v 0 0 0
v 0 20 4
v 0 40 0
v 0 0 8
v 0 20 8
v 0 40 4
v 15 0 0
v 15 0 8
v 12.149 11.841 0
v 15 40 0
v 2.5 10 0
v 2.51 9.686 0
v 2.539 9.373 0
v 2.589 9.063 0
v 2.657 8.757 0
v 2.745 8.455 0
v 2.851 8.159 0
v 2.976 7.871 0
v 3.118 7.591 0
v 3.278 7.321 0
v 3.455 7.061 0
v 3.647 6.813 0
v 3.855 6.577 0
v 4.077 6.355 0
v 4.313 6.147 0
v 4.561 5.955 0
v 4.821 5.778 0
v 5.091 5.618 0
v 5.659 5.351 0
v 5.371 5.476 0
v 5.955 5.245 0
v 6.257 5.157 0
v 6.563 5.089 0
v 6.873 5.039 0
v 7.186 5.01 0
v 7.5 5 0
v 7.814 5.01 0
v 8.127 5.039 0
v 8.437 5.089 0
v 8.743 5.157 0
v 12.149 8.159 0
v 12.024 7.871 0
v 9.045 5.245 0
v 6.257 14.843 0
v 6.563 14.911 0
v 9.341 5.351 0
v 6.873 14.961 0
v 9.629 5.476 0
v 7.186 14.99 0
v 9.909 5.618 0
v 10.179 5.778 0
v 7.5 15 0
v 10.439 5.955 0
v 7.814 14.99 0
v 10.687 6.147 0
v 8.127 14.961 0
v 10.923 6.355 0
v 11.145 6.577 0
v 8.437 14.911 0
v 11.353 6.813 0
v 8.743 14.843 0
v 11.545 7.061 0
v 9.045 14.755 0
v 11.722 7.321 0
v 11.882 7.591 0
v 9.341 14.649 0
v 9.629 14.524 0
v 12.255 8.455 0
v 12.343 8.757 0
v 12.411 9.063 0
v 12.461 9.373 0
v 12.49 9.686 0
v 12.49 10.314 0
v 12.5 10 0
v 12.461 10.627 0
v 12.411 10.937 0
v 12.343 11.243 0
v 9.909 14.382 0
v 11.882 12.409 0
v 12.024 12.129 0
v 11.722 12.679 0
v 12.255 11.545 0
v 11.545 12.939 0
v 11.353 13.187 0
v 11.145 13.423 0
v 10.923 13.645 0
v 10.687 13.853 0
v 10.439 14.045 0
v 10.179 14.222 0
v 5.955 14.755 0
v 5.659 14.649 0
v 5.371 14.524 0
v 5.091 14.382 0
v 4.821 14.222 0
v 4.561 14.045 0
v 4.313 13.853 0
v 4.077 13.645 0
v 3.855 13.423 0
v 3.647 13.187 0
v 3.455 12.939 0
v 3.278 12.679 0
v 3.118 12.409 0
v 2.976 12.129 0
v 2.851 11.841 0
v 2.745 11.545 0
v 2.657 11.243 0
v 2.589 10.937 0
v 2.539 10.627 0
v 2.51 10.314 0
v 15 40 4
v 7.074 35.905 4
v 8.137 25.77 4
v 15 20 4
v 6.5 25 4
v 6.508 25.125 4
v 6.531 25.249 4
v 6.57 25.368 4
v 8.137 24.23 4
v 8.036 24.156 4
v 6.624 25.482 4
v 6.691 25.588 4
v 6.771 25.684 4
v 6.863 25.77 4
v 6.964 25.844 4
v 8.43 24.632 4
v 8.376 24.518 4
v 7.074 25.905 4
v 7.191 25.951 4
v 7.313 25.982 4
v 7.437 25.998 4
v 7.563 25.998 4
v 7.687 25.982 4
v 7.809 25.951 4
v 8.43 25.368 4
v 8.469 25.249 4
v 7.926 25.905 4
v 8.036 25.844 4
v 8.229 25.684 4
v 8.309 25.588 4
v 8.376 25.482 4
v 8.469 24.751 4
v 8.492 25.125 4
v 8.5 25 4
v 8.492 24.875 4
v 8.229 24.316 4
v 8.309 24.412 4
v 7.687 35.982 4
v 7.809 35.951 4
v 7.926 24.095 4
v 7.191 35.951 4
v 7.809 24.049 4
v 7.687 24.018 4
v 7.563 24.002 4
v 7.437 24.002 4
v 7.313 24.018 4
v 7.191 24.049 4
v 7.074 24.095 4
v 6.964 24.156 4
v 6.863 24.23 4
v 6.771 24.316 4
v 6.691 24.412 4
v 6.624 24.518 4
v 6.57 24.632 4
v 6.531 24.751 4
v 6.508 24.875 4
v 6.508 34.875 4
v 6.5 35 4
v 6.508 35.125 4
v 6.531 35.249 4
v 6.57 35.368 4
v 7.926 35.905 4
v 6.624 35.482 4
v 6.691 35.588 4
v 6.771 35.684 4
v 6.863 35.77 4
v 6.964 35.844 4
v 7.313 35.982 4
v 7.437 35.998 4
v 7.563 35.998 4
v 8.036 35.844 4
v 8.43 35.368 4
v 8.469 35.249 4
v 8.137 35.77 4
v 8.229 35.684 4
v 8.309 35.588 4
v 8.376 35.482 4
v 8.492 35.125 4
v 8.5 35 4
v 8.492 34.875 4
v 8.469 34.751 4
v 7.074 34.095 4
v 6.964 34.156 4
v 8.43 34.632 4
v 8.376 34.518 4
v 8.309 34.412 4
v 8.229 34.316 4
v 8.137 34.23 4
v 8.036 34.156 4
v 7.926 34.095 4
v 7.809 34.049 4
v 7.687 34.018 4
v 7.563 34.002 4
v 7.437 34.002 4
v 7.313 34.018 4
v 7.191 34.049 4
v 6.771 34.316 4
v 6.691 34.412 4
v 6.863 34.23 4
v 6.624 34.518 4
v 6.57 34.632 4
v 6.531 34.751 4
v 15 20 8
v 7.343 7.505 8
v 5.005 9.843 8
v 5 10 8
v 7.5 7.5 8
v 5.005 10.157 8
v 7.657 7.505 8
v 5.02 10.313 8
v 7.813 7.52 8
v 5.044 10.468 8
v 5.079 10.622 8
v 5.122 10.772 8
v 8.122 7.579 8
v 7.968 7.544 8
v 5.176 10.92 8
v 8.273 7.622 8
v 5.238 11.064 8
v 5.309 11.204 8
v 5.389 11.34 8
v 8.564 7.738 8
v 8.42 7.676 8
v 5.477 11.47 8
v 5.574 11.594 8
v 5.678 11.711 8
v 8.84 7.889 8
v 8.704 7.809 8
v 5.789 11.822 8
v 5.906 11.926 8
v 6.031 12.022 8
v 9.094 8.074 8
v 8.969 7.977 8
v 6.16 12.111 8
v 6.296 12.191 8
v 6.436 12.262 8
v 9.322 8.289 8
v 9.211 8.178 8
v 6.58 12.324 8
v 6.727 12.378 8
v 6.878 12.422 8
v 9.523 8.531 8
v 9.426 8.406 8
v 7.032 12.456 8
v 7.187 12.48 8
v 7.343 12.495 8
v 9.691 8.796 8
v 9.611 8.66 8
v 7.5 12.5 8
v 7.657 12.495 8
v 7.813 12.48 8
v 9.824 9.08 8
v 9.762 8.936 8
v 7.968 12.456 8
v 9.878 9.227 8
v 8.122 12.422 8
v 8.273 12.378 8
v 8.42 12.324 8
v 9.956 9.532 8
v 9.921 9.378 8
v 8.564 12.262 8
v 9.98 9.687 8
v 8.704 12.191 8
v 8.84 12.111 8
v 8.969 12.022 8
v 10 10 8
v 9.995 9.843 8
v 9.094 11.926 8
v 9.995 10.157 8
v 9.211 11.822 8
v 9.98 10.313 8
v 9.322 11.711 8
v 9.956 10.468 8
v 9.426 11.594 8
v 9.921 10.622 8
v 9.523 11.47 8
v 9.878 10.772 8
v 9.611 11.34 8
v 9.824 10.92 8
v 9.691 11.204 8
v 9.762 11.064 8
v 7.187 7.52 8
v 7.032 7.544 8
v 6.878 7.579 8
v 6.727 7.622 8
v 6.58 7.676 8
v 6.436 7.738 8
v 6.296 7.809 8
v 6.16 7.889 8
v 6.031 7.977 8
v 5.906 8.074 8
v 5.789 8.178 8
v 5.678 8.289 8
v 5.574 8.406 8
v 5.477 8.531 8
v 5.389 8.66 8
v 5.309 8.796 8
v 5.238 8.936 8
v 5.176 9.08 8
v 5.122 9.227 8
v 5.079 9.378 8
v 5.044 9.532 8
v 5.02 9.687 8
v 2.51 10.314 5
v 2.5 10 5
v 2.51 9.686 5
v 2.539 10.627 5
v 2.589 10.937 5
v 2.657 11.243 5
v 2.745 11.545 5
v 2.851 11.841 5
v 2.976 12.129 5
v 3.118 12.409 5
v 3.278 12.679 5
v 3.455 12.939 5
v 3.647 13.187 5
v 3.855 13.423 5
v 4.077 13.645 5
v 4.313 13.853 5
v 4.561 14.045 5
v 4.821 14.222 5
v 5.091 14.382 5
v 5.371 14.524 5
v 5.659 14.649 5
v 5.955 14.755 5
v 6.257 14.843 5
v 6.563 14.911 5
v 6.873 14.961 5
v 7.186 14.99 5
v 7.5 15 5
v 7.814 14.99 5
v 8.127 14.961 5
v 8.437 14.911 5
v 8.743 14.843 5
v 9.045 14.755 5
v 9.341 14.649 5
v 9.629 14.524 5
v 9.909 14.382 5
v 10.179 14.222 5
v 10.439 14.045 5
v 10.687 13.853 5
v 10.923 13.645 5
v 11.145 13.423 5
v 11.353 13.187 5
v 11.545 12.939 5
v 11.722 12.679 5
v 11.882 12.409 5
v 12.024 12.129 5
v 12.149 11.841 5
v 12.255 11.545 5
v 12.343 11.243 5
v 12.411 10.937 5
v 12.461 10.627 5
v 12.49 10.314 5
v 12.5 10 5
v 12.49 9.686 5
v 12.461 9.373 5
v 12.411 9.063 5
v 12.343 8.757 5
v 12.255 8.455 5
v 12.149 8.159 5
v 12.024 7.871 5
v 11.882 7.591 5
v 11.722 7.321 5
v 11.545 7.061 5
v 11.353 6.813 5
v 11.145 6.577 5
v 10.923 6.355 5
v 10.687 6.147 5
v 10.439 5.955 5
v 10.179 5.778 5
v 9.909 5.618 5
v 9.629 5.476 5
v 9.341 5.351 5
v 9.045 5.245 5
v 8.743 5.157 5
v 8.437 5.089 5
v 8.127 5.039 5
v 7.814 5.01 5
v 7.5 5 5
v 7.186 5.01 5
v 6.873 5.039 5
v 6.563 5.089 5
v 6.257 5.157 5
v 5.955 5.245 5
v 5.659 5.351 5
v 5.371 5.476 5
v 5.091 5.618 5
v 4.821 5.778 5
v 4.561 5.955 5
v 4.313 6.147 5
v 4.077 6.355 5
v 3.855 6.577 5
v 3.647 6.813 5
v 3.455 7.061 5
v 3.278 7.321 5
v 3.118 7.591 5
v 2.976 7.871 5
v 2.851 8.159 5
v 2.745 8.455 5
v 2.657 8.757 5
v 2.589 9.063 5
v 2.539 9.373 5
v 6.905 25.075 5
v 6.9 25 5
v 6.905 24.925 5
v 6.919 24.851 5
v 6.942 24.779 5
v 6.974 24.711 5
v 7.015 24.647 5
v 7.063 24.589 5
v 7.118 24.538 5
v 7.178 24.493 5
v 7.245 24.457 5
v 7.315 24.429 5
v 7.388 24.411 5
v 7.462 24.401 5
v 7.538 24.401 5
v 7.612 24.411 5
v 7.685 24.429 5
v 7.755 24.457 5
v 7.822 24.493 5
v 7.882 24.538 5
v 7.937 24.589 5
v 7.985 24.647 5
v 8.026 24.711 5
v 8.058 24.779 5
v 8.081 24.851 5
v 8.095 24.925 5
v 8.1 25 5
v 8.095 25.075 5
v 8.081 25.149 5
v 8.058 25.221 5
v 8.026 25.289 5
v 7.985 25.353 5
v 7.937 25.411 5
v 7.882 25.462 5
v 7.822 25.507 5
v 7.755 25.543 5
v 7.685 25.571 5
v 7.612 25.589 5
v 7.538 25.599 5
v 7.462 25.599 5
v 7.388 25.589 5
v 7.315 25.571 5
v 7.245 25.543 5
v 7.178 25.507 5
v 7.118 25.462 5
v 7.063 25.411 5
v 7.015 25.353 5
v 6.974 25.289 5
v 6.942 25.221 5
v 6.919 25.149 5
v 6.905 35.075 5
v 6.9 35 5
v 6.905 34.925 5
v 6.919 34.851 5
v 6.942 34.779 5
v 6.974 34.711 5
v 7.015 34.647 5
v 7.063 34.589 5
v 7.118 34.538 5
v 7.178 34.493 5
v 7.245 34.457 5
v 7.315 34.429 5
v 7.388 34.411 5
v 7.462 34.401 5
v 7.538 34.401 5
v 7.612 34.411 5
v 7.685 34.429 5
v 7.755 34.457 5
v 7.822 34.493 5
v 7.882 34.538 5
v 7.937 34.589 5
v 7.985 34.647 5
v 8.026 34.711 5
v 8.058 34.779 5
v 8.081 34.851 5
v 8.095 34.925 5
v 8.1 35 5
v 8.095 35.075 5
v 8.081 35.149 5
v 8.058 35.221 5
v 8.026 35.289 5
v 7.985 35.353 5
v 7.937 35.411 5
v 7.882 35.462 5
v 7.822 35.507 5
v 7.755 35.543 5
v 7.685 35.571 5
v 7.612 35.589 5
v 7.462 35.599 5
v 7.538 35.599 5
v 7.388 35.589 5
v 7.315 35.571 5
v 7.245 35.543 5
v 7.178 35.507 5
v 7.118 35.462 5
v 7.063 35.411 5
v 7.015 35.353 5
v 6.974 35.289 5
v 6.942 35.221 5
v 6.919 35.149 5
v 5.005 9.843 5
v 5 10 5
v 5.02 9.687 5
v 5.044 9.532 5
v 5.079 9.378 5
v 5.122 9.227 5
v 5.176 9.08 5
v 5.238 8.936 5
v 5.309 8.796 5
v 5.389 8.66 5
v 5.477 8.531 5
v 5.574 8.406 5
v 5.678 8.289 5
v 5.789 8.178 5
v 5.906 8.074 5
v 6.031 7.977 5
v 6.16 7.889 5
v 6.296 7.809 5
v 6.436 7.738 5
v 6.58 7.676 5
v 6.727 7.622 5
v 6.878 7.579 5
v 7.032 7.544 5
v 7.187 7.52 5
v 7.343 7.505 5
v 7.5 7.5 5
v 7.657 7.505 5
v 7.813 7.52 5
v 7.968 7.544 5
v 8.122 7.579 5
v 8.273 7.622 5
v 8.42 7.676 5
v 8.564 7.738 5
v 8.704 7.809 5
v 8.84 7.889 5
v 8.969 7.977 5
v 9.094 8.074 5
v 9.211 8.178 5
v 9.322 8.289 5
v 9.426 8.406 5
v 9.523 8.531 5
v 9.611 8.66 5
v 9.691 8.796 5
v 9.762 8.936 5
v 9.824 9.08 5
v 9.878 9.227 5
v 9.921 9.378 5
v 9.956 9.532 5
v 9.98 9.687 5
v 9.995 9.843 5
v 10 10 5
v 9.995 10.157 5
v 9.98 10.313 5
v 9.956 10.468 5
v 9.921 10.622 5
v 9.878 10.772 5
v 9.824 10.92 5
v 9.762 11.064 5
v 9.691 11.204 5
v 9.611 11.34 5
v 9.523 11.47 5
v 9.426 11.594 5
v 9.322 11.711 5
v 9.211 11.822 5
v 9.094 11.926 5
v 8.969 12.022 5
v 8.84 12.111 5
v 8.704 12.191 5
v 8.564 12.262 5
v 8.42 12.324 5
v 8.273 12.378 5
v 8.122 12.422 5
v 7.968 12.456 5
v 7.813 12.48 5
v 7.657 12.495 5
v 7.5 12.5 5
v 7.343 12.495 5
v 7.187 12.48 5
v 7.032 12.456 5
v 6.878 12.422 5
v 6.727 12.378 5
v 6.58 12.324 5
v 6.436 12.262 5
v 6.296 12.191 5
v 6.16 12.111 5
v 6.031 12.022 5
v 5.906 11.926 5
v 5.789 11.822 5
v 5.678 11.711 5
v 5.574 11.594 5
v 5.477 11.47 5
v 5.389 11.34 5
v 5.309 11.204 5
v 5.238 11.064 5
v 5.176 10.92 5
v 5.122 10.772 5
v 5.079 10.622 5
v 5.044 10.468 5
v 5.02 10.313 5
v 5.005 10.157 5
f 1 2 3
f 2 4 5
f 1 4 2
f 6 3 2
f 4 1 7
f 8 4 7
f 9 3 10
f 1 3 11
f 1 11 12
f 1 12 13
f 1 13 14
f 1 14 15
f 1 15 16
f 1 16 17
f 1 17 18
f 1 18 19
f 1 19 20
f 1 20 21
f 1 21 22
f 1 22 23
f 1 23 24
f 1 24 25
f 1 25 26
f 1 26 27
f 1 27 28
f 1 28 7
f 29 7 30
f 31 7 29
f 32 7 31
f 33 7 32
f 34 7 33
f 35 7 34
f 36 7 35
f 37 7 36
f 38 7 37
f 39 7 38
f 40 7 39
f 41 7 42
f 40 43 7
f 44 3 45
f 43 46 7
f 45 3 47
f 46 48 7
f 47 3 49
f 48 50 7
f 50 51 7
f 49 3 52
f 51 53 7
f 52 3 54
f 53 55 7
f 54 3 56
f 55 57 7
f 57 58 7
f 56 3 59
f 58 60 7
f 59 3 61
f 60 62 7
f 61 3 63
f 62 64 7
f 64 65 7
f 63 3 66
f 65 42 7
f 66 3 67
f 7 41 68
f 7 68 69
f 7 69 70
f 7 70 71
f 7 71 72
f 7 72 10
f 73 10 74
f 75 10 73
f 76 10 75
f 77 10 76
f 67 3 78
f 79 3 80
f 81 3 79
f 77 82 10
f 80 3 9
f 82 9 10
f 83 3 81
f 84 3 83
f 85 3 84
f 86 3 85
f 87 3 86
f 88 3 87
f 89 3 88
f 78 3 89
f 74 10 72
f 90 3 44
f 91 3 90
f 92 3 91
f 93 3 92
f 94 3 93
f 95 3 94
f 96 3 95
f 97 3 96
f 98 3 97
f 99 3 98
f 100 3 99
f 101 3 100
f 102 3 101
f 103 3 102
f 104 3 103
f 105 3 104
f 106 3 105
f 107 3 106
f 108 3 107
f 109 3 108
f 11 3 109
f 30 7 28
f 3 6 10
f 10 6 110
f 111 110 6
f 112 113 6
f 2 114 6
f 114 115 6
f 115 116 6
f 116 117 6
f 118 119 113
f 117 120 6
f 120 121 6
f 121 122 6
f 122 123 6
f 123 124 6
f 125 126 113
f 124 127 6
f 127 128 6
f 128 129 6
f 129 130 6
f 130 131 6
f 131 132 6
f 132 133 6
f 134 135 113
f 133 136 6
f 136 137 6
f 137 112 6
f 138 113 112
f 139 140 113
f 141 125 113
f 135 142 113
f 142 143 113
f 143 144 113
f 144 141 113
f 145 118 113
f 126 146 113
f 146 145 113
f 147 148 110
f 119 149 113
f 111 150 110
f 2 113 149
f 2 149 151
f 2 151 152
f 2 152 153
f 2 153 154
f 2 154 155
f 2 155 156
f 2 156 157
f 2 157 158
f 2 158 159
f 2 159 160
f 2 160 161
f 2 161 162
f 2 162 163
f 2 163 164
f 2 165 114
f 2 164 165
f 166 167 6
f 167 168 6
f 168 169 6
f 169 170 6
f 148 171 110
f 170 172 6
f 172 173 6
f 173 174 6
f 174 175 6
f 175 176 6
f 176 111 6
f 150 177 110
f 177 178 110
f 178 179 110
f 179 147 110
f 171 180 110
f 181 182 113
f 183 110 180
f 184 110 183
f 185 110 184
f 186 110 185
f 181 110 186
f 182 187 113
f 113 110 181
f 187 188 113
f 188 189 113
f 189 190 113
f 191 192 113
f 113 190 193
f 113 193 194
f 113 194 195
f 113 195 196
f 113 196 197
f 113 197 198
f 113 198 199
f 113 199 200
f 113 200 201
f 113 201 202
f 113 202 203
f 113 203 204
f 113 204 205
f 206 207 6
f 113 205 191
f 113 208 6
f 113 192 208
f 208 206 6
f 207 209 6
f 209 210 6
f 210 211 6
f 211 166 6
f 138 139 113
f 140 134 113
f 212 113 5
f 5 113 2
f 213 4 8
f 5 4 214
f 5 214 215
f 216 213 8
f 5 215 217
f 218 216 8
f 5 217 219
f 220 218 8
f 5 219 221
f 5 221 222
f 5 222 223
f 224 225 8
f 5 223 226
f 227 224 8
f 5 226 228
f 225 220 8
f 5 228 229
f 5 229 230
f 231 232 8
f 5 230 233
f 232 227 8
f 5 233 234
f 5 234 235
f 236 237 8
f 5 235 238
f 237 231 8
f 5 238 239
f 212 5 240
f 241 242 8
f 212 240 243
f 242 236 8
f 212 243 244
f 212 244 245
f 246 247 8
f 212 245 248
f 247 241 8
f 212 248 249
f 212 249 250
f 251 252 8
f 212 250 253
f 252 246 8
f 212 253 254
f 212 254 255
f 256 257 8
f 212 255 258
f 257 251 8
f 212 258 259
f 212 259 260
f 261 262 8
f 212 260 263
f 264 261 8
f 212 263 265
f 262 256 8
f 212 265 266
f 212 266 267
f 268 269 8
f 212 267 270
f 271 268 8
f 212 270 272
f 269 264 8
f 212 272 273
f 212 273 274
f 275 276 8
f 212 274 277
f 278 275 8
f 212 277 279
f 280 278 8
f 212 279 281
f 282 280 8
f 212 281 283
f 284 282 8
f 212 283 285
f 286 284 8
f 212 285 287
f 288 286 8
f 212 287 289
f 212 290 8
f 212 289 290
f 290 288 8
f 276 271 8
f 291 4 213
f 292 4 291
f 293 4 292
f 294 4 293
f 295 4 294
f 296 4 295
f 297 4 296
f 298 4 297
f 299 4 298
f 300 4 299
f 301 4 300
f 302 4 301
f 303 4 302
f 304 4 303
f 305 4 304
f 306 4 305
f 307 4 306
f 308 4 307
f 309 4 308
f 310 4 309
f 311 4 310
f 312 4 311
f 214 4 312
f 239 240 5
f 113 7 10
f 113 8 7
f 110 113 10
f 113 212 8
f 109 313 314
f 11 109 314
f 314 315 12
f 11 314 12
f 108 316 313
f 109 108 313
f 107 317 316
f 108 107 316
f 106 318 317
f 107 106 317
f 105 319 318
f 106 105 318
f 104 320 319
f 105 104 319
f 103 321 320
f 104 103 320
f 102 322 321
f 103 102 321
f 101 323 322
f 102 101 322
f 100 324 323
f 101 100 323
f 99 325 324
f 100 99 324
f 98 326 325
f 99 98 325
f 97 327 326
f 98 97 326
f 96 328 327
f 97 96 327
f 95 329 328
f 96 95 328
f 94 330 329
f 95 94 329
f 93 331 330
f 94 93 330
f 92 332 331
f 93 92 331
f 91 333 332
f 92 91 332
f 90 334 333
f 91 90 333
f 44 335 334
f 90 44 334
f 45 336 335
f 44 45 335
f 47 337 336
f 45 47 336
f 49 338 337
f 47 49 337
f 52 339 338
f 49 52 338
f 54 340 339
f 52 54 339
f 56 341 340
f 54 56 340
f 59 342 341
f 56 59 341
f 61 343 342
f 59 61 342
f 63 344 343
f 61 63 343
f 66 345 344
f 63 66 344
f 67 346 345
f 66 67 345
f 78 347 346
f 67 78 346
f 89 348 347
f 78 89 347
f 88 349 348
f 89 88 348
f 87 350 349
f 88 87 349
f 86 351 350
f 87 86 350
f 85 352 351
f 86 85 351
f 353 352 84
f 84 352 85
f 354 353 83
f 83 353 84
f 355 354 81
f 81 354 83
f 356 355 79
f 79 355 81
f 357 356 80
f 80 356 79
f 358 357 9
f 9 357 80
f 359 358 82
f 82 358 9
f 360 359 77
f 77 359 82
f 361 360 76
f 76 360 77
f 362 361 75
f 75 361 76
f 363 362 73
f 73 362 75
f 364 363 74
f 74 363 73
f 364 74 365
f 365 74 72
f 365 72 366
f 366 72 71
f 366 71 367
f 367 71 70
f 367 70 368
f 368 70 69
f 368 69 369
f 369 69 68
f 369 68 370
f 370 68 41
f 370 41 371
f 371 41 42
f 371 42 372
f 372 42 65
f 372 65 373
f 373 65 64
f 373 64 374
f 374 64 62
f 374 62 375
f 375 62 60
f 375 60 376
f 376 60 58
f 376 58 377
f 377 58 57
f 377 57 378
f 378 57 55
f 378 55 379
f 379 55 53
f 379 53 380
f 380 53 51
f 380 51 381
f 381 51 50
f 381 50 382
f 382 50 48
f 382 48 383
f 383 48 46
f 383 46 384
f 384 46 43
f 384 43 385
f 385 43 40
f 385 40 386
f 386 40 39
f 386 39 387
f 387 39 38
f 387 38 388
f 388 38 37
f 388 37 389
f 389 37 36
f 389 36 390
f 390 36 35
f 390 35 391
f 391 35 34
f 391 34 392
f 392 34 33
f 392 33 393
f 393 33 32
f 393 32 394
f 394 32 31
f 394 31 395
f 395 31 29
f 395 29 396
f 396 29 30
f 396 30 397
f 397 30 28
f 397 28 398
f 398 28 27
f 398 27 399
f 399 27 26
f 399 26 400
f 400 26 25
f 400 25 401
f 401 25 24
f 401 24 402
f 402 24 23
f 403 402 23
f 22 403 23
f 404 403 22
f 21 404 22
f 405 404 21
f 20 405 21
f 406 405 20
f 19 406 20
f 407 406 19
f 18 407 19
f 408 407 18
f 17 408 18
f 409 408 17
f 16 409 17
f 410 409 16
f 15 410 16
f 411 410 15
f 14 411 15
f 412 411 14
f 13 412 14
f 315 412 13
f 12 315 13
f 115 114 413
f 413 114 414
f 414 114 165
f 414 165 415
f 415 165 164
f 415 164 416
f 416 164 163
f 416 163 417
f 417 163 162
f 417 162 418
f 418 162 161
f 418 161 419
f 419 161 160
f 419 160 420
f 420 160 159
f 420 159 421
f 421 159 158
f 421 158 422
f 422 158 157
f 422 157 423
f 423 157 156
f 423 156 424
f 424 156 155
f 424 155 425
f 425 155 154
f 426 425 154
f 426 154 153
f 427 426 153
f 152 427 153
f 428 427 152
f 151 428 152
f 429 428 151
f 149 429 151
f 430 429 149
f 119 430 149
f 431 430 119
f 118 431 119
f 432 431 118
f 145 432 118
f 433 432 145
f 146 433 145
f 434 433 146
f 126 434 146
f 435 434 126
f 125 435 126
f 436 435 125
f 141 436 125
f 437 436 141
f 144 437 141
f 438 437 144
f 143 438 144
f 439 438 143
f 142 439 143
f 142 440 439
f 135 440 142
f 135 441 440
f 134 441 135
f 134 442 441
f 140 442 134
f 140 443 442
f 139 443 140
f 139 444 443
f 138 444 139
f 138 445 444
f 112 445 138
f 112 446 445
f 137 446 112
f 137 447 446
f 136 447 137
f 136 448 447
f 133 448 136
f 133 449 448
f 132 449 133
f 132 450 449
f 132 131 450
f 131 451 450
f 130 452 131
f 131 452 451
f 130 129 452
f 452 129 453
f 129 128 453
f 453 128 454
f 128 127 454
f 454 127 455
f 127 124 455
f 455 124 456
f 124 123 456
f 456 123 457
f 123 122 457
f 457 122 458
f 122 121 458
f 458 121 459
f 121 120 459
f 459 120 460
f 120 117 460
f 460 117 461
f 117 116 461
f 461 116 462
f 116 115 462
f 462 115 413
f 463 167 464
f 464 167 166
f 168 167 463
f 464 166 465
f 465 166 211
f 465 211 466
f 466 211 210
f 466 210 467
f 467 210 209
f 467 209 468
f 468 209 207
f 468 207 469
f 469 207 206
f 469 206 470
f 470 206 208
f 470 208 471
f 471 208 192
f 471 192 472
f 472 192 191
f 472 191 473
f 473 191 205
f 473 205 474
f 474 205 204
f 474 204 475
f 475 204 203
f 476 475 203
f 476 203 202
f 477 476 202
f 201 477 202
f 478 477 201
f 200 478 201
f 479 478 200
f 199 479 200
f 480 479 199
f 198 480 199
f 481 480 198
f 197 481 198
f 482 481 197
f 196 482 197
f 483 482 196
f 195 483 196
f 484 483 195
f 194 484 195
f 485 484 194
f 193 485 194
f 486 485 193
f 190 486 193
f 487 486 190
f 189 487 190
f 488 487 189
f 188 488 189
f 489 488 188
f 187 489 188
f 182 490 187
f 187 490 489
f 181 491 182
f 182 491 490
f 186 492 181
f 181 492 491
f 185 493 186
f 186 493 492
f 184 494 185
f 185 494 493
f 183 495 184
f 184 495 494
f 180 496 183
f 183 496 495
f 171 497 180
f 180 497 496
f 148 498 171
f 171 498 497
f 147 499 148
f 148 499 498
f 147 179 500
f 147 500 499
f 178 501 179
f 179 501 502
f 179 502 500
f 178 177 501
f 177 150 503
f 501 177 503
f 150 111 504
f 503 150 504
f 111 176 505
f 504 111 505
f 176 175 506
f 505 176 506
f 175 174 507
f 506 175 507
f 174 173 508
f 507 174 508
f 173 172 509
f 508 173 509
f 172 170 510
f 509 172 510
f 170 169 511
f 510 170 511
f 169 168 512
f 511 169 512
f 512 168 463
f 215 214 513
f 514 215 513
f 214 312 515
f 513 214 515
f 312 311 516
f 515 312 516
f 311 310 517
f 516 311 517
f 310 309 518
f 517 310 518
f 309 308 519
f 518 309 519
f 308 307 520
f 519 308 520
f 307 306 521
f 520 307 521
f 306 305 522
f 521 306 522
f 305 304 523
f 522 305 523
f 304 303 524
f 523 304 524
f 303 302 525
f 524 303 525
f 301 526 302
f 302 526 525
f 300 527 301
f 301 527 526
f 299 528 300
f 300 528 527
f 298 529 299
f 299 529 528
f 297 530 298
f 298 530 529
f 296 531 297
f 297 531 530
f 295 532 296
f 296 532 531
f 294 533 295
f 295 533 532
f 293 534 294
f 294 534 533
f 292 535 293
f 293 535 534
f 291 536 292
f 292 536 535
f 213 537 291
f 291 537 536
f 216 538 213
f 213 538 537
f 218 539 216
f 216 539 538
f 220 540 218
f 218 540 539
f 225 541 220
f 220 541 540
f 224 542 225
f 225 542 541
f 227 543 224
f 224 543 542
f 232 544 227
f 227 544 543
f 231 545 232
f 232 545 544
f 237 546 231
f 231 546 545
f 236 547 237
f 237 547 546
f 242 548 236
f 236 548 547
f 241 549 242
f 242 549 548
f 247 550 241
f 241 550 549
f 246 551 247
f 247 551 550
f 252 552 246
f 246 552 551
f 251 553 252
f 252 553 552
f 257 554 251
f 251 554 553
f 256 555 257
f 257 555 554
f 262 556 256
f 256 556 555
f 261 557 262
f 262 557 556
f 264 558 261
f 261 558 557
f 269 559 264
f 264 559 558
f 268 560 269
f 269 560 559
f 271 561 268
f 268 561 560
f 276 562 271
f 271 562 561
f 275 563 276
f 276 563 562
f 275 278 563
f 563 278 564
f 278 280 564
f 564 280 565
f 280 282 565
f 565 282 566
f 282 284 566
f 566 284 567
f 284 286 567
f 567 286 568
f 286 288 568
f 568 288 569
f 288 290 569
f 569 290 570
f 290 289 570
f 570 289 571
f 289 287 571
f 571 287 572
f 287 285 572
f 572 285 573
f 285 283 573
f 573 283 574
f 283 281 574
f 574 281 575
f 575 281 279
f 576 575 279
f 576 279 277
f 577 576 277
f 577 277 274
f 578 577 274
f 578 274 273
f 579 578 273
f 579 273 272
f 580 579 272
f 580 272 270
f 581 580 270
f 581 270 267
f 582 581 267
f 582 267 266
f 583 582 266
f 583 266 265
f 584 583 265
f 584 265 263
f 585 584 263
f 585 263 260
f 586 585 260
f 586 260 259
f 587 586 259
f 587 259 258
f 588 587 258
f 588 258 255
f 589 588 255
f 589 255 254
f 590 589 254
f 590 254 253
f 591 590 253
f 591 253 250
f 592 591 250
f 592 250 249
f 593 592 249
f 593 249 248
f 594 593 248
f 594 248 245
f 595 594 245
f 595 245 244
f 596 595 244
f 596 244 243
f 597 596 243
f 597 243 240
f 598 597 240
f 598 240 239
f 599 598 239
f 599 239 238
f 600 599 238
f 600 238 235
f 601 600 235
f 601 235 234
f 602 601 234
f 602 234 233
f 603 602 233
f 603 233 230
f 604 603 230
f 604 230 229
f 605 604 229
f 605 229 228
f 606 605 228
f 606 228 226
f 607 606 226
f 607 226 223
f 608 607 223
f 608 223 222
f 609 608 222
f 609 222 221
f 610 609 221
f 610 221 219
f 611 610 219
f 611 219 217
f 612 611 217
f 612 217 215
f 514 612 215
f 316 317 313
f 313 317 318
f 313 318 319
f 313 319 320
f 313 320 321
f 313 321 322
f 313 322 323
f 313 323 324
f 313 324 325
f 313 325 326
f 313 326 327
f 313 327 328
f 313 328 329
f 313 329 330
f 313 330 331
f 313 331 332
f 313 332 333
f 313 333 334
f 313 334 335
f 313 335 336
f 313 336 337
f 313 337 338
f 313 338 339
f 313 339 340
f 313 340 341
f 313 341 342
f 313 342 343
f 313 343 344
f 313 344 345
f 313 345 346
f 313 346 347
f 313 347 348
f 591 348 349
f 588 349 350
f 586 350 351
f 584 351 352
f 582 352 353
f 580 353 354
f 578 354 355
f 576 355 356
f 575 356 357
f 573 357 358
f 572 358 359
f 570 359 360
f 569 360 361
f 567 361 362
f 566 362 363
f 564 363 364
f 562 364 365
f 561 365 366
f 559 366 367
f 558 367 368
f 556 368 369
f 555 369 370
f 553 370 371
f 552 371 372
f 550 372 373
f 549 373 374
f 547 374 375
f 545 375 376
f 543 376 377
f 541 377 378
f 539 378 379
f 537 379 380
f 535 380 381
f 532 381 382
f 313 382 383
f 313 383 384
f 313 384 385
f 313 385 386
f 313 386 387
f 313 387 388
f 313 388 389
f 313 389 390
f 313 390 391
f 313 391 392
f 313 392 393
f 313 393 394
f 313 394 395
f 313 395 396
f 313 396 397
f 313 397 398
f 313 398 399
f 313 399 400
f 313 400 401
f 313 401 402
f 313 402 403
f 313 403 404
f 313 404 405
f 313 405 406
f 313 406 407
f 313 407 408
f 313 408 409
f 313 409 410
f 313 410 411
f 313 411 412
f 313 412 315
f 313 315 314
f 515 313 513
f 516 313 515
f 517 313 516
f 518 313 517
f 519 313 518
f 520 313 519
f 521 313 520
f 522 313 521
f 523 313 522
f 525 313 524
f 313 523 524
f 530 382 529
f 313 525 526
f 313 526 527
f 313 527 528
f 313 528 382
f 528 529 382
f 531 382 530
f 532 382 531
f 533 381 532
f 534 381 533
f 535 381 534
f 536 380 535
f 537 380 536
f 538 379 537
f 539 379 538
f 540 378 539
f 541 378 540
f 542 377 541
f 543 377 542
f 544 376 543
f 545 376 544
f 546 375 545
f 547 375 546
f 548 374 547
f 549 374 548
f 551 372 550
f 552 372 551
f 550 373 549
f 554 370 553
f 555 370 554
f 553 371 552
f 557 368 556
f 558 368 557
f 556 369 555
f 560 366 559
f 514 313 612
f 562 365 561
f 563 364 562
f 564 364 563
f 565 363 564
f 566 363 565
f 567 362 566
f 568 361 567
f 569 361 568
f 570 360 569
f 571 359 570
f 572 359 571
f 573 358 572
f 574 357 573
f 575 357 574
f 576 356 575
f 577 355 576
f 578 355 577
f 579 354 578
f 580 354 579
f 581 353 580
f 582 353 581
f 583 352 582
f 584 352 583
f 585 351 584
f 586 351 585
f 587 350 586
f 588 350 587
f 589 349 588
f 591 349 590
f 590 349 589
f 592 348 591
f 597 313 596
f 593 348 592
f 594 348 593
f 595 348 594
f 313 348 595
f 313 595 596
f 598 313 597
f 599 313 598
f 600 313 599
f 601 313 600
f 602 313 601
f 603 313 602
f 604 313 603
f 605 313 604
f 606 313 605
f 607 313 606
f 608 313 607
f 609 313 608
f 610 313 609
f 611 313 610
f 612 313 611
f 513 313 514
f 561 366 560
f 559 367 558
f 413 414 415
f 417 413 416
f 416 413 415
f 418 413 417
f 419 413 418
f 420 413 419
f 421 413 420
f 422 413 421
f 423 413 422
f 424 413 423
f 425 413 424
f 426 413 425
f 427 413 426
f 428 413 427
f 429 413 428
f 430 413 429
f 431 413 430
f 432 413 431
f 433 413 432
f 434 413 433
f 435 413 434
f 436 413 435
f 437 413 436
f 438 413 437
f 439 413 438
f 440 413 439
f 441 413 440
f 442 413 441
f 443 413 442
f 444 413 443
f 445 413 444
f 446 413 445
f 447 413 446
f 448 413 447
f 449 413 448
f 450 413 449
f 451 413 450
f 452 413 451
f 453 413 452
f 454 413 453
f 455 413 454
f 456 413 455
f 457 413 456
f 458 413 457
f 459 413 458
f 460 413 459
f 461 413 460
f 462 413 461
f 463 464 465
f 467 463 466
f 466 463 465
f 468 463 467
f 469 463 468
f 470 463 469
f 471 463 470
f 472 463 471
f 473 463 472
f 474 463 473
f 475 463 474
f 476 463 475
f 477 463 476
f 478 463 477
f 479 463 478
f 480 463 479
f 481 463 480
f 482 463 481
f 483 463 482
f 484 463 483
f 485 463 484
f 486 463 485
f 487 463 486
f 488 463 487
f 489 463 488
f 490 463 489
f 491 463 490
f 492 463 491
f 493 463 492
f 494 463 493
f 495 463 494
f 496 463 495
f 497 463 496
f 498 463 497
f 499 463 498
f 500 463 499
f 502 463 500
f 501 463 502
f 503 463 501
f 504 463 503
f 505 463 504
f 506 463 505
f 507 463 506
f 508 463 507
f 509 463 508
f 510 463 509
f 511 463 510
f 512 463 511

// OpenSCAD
longueur=15;
largeur=40;
h1=8;
r_m4=2.5;


module support(){
	difference(){
	cube([longueur,largeur,h1]);

	translate([-5,largeur/2,h1/2]){cube([longueur+20,largeur,h1]);}

	//trous pour fixation
	translate([longueur/2,largeur/4,-5]){cylinder(h = 20, r = r_m4, $fn=100);}
	translate([longueur/2,largeur/4,-5]){cylinder(h = 10, r = 5, $fn=100);}

	}
	//cônes pour collage endstop
	translate([longueur/2,35,h1/2]){cylinder(h = 1, r1 = 1, r2 = 0.6, $fn=50);}
	translate([longueur/2,25,h1/2]){cylinder(h = 1, r1 = 1, r2 = 0.6, $fn=50);}
}
support();
